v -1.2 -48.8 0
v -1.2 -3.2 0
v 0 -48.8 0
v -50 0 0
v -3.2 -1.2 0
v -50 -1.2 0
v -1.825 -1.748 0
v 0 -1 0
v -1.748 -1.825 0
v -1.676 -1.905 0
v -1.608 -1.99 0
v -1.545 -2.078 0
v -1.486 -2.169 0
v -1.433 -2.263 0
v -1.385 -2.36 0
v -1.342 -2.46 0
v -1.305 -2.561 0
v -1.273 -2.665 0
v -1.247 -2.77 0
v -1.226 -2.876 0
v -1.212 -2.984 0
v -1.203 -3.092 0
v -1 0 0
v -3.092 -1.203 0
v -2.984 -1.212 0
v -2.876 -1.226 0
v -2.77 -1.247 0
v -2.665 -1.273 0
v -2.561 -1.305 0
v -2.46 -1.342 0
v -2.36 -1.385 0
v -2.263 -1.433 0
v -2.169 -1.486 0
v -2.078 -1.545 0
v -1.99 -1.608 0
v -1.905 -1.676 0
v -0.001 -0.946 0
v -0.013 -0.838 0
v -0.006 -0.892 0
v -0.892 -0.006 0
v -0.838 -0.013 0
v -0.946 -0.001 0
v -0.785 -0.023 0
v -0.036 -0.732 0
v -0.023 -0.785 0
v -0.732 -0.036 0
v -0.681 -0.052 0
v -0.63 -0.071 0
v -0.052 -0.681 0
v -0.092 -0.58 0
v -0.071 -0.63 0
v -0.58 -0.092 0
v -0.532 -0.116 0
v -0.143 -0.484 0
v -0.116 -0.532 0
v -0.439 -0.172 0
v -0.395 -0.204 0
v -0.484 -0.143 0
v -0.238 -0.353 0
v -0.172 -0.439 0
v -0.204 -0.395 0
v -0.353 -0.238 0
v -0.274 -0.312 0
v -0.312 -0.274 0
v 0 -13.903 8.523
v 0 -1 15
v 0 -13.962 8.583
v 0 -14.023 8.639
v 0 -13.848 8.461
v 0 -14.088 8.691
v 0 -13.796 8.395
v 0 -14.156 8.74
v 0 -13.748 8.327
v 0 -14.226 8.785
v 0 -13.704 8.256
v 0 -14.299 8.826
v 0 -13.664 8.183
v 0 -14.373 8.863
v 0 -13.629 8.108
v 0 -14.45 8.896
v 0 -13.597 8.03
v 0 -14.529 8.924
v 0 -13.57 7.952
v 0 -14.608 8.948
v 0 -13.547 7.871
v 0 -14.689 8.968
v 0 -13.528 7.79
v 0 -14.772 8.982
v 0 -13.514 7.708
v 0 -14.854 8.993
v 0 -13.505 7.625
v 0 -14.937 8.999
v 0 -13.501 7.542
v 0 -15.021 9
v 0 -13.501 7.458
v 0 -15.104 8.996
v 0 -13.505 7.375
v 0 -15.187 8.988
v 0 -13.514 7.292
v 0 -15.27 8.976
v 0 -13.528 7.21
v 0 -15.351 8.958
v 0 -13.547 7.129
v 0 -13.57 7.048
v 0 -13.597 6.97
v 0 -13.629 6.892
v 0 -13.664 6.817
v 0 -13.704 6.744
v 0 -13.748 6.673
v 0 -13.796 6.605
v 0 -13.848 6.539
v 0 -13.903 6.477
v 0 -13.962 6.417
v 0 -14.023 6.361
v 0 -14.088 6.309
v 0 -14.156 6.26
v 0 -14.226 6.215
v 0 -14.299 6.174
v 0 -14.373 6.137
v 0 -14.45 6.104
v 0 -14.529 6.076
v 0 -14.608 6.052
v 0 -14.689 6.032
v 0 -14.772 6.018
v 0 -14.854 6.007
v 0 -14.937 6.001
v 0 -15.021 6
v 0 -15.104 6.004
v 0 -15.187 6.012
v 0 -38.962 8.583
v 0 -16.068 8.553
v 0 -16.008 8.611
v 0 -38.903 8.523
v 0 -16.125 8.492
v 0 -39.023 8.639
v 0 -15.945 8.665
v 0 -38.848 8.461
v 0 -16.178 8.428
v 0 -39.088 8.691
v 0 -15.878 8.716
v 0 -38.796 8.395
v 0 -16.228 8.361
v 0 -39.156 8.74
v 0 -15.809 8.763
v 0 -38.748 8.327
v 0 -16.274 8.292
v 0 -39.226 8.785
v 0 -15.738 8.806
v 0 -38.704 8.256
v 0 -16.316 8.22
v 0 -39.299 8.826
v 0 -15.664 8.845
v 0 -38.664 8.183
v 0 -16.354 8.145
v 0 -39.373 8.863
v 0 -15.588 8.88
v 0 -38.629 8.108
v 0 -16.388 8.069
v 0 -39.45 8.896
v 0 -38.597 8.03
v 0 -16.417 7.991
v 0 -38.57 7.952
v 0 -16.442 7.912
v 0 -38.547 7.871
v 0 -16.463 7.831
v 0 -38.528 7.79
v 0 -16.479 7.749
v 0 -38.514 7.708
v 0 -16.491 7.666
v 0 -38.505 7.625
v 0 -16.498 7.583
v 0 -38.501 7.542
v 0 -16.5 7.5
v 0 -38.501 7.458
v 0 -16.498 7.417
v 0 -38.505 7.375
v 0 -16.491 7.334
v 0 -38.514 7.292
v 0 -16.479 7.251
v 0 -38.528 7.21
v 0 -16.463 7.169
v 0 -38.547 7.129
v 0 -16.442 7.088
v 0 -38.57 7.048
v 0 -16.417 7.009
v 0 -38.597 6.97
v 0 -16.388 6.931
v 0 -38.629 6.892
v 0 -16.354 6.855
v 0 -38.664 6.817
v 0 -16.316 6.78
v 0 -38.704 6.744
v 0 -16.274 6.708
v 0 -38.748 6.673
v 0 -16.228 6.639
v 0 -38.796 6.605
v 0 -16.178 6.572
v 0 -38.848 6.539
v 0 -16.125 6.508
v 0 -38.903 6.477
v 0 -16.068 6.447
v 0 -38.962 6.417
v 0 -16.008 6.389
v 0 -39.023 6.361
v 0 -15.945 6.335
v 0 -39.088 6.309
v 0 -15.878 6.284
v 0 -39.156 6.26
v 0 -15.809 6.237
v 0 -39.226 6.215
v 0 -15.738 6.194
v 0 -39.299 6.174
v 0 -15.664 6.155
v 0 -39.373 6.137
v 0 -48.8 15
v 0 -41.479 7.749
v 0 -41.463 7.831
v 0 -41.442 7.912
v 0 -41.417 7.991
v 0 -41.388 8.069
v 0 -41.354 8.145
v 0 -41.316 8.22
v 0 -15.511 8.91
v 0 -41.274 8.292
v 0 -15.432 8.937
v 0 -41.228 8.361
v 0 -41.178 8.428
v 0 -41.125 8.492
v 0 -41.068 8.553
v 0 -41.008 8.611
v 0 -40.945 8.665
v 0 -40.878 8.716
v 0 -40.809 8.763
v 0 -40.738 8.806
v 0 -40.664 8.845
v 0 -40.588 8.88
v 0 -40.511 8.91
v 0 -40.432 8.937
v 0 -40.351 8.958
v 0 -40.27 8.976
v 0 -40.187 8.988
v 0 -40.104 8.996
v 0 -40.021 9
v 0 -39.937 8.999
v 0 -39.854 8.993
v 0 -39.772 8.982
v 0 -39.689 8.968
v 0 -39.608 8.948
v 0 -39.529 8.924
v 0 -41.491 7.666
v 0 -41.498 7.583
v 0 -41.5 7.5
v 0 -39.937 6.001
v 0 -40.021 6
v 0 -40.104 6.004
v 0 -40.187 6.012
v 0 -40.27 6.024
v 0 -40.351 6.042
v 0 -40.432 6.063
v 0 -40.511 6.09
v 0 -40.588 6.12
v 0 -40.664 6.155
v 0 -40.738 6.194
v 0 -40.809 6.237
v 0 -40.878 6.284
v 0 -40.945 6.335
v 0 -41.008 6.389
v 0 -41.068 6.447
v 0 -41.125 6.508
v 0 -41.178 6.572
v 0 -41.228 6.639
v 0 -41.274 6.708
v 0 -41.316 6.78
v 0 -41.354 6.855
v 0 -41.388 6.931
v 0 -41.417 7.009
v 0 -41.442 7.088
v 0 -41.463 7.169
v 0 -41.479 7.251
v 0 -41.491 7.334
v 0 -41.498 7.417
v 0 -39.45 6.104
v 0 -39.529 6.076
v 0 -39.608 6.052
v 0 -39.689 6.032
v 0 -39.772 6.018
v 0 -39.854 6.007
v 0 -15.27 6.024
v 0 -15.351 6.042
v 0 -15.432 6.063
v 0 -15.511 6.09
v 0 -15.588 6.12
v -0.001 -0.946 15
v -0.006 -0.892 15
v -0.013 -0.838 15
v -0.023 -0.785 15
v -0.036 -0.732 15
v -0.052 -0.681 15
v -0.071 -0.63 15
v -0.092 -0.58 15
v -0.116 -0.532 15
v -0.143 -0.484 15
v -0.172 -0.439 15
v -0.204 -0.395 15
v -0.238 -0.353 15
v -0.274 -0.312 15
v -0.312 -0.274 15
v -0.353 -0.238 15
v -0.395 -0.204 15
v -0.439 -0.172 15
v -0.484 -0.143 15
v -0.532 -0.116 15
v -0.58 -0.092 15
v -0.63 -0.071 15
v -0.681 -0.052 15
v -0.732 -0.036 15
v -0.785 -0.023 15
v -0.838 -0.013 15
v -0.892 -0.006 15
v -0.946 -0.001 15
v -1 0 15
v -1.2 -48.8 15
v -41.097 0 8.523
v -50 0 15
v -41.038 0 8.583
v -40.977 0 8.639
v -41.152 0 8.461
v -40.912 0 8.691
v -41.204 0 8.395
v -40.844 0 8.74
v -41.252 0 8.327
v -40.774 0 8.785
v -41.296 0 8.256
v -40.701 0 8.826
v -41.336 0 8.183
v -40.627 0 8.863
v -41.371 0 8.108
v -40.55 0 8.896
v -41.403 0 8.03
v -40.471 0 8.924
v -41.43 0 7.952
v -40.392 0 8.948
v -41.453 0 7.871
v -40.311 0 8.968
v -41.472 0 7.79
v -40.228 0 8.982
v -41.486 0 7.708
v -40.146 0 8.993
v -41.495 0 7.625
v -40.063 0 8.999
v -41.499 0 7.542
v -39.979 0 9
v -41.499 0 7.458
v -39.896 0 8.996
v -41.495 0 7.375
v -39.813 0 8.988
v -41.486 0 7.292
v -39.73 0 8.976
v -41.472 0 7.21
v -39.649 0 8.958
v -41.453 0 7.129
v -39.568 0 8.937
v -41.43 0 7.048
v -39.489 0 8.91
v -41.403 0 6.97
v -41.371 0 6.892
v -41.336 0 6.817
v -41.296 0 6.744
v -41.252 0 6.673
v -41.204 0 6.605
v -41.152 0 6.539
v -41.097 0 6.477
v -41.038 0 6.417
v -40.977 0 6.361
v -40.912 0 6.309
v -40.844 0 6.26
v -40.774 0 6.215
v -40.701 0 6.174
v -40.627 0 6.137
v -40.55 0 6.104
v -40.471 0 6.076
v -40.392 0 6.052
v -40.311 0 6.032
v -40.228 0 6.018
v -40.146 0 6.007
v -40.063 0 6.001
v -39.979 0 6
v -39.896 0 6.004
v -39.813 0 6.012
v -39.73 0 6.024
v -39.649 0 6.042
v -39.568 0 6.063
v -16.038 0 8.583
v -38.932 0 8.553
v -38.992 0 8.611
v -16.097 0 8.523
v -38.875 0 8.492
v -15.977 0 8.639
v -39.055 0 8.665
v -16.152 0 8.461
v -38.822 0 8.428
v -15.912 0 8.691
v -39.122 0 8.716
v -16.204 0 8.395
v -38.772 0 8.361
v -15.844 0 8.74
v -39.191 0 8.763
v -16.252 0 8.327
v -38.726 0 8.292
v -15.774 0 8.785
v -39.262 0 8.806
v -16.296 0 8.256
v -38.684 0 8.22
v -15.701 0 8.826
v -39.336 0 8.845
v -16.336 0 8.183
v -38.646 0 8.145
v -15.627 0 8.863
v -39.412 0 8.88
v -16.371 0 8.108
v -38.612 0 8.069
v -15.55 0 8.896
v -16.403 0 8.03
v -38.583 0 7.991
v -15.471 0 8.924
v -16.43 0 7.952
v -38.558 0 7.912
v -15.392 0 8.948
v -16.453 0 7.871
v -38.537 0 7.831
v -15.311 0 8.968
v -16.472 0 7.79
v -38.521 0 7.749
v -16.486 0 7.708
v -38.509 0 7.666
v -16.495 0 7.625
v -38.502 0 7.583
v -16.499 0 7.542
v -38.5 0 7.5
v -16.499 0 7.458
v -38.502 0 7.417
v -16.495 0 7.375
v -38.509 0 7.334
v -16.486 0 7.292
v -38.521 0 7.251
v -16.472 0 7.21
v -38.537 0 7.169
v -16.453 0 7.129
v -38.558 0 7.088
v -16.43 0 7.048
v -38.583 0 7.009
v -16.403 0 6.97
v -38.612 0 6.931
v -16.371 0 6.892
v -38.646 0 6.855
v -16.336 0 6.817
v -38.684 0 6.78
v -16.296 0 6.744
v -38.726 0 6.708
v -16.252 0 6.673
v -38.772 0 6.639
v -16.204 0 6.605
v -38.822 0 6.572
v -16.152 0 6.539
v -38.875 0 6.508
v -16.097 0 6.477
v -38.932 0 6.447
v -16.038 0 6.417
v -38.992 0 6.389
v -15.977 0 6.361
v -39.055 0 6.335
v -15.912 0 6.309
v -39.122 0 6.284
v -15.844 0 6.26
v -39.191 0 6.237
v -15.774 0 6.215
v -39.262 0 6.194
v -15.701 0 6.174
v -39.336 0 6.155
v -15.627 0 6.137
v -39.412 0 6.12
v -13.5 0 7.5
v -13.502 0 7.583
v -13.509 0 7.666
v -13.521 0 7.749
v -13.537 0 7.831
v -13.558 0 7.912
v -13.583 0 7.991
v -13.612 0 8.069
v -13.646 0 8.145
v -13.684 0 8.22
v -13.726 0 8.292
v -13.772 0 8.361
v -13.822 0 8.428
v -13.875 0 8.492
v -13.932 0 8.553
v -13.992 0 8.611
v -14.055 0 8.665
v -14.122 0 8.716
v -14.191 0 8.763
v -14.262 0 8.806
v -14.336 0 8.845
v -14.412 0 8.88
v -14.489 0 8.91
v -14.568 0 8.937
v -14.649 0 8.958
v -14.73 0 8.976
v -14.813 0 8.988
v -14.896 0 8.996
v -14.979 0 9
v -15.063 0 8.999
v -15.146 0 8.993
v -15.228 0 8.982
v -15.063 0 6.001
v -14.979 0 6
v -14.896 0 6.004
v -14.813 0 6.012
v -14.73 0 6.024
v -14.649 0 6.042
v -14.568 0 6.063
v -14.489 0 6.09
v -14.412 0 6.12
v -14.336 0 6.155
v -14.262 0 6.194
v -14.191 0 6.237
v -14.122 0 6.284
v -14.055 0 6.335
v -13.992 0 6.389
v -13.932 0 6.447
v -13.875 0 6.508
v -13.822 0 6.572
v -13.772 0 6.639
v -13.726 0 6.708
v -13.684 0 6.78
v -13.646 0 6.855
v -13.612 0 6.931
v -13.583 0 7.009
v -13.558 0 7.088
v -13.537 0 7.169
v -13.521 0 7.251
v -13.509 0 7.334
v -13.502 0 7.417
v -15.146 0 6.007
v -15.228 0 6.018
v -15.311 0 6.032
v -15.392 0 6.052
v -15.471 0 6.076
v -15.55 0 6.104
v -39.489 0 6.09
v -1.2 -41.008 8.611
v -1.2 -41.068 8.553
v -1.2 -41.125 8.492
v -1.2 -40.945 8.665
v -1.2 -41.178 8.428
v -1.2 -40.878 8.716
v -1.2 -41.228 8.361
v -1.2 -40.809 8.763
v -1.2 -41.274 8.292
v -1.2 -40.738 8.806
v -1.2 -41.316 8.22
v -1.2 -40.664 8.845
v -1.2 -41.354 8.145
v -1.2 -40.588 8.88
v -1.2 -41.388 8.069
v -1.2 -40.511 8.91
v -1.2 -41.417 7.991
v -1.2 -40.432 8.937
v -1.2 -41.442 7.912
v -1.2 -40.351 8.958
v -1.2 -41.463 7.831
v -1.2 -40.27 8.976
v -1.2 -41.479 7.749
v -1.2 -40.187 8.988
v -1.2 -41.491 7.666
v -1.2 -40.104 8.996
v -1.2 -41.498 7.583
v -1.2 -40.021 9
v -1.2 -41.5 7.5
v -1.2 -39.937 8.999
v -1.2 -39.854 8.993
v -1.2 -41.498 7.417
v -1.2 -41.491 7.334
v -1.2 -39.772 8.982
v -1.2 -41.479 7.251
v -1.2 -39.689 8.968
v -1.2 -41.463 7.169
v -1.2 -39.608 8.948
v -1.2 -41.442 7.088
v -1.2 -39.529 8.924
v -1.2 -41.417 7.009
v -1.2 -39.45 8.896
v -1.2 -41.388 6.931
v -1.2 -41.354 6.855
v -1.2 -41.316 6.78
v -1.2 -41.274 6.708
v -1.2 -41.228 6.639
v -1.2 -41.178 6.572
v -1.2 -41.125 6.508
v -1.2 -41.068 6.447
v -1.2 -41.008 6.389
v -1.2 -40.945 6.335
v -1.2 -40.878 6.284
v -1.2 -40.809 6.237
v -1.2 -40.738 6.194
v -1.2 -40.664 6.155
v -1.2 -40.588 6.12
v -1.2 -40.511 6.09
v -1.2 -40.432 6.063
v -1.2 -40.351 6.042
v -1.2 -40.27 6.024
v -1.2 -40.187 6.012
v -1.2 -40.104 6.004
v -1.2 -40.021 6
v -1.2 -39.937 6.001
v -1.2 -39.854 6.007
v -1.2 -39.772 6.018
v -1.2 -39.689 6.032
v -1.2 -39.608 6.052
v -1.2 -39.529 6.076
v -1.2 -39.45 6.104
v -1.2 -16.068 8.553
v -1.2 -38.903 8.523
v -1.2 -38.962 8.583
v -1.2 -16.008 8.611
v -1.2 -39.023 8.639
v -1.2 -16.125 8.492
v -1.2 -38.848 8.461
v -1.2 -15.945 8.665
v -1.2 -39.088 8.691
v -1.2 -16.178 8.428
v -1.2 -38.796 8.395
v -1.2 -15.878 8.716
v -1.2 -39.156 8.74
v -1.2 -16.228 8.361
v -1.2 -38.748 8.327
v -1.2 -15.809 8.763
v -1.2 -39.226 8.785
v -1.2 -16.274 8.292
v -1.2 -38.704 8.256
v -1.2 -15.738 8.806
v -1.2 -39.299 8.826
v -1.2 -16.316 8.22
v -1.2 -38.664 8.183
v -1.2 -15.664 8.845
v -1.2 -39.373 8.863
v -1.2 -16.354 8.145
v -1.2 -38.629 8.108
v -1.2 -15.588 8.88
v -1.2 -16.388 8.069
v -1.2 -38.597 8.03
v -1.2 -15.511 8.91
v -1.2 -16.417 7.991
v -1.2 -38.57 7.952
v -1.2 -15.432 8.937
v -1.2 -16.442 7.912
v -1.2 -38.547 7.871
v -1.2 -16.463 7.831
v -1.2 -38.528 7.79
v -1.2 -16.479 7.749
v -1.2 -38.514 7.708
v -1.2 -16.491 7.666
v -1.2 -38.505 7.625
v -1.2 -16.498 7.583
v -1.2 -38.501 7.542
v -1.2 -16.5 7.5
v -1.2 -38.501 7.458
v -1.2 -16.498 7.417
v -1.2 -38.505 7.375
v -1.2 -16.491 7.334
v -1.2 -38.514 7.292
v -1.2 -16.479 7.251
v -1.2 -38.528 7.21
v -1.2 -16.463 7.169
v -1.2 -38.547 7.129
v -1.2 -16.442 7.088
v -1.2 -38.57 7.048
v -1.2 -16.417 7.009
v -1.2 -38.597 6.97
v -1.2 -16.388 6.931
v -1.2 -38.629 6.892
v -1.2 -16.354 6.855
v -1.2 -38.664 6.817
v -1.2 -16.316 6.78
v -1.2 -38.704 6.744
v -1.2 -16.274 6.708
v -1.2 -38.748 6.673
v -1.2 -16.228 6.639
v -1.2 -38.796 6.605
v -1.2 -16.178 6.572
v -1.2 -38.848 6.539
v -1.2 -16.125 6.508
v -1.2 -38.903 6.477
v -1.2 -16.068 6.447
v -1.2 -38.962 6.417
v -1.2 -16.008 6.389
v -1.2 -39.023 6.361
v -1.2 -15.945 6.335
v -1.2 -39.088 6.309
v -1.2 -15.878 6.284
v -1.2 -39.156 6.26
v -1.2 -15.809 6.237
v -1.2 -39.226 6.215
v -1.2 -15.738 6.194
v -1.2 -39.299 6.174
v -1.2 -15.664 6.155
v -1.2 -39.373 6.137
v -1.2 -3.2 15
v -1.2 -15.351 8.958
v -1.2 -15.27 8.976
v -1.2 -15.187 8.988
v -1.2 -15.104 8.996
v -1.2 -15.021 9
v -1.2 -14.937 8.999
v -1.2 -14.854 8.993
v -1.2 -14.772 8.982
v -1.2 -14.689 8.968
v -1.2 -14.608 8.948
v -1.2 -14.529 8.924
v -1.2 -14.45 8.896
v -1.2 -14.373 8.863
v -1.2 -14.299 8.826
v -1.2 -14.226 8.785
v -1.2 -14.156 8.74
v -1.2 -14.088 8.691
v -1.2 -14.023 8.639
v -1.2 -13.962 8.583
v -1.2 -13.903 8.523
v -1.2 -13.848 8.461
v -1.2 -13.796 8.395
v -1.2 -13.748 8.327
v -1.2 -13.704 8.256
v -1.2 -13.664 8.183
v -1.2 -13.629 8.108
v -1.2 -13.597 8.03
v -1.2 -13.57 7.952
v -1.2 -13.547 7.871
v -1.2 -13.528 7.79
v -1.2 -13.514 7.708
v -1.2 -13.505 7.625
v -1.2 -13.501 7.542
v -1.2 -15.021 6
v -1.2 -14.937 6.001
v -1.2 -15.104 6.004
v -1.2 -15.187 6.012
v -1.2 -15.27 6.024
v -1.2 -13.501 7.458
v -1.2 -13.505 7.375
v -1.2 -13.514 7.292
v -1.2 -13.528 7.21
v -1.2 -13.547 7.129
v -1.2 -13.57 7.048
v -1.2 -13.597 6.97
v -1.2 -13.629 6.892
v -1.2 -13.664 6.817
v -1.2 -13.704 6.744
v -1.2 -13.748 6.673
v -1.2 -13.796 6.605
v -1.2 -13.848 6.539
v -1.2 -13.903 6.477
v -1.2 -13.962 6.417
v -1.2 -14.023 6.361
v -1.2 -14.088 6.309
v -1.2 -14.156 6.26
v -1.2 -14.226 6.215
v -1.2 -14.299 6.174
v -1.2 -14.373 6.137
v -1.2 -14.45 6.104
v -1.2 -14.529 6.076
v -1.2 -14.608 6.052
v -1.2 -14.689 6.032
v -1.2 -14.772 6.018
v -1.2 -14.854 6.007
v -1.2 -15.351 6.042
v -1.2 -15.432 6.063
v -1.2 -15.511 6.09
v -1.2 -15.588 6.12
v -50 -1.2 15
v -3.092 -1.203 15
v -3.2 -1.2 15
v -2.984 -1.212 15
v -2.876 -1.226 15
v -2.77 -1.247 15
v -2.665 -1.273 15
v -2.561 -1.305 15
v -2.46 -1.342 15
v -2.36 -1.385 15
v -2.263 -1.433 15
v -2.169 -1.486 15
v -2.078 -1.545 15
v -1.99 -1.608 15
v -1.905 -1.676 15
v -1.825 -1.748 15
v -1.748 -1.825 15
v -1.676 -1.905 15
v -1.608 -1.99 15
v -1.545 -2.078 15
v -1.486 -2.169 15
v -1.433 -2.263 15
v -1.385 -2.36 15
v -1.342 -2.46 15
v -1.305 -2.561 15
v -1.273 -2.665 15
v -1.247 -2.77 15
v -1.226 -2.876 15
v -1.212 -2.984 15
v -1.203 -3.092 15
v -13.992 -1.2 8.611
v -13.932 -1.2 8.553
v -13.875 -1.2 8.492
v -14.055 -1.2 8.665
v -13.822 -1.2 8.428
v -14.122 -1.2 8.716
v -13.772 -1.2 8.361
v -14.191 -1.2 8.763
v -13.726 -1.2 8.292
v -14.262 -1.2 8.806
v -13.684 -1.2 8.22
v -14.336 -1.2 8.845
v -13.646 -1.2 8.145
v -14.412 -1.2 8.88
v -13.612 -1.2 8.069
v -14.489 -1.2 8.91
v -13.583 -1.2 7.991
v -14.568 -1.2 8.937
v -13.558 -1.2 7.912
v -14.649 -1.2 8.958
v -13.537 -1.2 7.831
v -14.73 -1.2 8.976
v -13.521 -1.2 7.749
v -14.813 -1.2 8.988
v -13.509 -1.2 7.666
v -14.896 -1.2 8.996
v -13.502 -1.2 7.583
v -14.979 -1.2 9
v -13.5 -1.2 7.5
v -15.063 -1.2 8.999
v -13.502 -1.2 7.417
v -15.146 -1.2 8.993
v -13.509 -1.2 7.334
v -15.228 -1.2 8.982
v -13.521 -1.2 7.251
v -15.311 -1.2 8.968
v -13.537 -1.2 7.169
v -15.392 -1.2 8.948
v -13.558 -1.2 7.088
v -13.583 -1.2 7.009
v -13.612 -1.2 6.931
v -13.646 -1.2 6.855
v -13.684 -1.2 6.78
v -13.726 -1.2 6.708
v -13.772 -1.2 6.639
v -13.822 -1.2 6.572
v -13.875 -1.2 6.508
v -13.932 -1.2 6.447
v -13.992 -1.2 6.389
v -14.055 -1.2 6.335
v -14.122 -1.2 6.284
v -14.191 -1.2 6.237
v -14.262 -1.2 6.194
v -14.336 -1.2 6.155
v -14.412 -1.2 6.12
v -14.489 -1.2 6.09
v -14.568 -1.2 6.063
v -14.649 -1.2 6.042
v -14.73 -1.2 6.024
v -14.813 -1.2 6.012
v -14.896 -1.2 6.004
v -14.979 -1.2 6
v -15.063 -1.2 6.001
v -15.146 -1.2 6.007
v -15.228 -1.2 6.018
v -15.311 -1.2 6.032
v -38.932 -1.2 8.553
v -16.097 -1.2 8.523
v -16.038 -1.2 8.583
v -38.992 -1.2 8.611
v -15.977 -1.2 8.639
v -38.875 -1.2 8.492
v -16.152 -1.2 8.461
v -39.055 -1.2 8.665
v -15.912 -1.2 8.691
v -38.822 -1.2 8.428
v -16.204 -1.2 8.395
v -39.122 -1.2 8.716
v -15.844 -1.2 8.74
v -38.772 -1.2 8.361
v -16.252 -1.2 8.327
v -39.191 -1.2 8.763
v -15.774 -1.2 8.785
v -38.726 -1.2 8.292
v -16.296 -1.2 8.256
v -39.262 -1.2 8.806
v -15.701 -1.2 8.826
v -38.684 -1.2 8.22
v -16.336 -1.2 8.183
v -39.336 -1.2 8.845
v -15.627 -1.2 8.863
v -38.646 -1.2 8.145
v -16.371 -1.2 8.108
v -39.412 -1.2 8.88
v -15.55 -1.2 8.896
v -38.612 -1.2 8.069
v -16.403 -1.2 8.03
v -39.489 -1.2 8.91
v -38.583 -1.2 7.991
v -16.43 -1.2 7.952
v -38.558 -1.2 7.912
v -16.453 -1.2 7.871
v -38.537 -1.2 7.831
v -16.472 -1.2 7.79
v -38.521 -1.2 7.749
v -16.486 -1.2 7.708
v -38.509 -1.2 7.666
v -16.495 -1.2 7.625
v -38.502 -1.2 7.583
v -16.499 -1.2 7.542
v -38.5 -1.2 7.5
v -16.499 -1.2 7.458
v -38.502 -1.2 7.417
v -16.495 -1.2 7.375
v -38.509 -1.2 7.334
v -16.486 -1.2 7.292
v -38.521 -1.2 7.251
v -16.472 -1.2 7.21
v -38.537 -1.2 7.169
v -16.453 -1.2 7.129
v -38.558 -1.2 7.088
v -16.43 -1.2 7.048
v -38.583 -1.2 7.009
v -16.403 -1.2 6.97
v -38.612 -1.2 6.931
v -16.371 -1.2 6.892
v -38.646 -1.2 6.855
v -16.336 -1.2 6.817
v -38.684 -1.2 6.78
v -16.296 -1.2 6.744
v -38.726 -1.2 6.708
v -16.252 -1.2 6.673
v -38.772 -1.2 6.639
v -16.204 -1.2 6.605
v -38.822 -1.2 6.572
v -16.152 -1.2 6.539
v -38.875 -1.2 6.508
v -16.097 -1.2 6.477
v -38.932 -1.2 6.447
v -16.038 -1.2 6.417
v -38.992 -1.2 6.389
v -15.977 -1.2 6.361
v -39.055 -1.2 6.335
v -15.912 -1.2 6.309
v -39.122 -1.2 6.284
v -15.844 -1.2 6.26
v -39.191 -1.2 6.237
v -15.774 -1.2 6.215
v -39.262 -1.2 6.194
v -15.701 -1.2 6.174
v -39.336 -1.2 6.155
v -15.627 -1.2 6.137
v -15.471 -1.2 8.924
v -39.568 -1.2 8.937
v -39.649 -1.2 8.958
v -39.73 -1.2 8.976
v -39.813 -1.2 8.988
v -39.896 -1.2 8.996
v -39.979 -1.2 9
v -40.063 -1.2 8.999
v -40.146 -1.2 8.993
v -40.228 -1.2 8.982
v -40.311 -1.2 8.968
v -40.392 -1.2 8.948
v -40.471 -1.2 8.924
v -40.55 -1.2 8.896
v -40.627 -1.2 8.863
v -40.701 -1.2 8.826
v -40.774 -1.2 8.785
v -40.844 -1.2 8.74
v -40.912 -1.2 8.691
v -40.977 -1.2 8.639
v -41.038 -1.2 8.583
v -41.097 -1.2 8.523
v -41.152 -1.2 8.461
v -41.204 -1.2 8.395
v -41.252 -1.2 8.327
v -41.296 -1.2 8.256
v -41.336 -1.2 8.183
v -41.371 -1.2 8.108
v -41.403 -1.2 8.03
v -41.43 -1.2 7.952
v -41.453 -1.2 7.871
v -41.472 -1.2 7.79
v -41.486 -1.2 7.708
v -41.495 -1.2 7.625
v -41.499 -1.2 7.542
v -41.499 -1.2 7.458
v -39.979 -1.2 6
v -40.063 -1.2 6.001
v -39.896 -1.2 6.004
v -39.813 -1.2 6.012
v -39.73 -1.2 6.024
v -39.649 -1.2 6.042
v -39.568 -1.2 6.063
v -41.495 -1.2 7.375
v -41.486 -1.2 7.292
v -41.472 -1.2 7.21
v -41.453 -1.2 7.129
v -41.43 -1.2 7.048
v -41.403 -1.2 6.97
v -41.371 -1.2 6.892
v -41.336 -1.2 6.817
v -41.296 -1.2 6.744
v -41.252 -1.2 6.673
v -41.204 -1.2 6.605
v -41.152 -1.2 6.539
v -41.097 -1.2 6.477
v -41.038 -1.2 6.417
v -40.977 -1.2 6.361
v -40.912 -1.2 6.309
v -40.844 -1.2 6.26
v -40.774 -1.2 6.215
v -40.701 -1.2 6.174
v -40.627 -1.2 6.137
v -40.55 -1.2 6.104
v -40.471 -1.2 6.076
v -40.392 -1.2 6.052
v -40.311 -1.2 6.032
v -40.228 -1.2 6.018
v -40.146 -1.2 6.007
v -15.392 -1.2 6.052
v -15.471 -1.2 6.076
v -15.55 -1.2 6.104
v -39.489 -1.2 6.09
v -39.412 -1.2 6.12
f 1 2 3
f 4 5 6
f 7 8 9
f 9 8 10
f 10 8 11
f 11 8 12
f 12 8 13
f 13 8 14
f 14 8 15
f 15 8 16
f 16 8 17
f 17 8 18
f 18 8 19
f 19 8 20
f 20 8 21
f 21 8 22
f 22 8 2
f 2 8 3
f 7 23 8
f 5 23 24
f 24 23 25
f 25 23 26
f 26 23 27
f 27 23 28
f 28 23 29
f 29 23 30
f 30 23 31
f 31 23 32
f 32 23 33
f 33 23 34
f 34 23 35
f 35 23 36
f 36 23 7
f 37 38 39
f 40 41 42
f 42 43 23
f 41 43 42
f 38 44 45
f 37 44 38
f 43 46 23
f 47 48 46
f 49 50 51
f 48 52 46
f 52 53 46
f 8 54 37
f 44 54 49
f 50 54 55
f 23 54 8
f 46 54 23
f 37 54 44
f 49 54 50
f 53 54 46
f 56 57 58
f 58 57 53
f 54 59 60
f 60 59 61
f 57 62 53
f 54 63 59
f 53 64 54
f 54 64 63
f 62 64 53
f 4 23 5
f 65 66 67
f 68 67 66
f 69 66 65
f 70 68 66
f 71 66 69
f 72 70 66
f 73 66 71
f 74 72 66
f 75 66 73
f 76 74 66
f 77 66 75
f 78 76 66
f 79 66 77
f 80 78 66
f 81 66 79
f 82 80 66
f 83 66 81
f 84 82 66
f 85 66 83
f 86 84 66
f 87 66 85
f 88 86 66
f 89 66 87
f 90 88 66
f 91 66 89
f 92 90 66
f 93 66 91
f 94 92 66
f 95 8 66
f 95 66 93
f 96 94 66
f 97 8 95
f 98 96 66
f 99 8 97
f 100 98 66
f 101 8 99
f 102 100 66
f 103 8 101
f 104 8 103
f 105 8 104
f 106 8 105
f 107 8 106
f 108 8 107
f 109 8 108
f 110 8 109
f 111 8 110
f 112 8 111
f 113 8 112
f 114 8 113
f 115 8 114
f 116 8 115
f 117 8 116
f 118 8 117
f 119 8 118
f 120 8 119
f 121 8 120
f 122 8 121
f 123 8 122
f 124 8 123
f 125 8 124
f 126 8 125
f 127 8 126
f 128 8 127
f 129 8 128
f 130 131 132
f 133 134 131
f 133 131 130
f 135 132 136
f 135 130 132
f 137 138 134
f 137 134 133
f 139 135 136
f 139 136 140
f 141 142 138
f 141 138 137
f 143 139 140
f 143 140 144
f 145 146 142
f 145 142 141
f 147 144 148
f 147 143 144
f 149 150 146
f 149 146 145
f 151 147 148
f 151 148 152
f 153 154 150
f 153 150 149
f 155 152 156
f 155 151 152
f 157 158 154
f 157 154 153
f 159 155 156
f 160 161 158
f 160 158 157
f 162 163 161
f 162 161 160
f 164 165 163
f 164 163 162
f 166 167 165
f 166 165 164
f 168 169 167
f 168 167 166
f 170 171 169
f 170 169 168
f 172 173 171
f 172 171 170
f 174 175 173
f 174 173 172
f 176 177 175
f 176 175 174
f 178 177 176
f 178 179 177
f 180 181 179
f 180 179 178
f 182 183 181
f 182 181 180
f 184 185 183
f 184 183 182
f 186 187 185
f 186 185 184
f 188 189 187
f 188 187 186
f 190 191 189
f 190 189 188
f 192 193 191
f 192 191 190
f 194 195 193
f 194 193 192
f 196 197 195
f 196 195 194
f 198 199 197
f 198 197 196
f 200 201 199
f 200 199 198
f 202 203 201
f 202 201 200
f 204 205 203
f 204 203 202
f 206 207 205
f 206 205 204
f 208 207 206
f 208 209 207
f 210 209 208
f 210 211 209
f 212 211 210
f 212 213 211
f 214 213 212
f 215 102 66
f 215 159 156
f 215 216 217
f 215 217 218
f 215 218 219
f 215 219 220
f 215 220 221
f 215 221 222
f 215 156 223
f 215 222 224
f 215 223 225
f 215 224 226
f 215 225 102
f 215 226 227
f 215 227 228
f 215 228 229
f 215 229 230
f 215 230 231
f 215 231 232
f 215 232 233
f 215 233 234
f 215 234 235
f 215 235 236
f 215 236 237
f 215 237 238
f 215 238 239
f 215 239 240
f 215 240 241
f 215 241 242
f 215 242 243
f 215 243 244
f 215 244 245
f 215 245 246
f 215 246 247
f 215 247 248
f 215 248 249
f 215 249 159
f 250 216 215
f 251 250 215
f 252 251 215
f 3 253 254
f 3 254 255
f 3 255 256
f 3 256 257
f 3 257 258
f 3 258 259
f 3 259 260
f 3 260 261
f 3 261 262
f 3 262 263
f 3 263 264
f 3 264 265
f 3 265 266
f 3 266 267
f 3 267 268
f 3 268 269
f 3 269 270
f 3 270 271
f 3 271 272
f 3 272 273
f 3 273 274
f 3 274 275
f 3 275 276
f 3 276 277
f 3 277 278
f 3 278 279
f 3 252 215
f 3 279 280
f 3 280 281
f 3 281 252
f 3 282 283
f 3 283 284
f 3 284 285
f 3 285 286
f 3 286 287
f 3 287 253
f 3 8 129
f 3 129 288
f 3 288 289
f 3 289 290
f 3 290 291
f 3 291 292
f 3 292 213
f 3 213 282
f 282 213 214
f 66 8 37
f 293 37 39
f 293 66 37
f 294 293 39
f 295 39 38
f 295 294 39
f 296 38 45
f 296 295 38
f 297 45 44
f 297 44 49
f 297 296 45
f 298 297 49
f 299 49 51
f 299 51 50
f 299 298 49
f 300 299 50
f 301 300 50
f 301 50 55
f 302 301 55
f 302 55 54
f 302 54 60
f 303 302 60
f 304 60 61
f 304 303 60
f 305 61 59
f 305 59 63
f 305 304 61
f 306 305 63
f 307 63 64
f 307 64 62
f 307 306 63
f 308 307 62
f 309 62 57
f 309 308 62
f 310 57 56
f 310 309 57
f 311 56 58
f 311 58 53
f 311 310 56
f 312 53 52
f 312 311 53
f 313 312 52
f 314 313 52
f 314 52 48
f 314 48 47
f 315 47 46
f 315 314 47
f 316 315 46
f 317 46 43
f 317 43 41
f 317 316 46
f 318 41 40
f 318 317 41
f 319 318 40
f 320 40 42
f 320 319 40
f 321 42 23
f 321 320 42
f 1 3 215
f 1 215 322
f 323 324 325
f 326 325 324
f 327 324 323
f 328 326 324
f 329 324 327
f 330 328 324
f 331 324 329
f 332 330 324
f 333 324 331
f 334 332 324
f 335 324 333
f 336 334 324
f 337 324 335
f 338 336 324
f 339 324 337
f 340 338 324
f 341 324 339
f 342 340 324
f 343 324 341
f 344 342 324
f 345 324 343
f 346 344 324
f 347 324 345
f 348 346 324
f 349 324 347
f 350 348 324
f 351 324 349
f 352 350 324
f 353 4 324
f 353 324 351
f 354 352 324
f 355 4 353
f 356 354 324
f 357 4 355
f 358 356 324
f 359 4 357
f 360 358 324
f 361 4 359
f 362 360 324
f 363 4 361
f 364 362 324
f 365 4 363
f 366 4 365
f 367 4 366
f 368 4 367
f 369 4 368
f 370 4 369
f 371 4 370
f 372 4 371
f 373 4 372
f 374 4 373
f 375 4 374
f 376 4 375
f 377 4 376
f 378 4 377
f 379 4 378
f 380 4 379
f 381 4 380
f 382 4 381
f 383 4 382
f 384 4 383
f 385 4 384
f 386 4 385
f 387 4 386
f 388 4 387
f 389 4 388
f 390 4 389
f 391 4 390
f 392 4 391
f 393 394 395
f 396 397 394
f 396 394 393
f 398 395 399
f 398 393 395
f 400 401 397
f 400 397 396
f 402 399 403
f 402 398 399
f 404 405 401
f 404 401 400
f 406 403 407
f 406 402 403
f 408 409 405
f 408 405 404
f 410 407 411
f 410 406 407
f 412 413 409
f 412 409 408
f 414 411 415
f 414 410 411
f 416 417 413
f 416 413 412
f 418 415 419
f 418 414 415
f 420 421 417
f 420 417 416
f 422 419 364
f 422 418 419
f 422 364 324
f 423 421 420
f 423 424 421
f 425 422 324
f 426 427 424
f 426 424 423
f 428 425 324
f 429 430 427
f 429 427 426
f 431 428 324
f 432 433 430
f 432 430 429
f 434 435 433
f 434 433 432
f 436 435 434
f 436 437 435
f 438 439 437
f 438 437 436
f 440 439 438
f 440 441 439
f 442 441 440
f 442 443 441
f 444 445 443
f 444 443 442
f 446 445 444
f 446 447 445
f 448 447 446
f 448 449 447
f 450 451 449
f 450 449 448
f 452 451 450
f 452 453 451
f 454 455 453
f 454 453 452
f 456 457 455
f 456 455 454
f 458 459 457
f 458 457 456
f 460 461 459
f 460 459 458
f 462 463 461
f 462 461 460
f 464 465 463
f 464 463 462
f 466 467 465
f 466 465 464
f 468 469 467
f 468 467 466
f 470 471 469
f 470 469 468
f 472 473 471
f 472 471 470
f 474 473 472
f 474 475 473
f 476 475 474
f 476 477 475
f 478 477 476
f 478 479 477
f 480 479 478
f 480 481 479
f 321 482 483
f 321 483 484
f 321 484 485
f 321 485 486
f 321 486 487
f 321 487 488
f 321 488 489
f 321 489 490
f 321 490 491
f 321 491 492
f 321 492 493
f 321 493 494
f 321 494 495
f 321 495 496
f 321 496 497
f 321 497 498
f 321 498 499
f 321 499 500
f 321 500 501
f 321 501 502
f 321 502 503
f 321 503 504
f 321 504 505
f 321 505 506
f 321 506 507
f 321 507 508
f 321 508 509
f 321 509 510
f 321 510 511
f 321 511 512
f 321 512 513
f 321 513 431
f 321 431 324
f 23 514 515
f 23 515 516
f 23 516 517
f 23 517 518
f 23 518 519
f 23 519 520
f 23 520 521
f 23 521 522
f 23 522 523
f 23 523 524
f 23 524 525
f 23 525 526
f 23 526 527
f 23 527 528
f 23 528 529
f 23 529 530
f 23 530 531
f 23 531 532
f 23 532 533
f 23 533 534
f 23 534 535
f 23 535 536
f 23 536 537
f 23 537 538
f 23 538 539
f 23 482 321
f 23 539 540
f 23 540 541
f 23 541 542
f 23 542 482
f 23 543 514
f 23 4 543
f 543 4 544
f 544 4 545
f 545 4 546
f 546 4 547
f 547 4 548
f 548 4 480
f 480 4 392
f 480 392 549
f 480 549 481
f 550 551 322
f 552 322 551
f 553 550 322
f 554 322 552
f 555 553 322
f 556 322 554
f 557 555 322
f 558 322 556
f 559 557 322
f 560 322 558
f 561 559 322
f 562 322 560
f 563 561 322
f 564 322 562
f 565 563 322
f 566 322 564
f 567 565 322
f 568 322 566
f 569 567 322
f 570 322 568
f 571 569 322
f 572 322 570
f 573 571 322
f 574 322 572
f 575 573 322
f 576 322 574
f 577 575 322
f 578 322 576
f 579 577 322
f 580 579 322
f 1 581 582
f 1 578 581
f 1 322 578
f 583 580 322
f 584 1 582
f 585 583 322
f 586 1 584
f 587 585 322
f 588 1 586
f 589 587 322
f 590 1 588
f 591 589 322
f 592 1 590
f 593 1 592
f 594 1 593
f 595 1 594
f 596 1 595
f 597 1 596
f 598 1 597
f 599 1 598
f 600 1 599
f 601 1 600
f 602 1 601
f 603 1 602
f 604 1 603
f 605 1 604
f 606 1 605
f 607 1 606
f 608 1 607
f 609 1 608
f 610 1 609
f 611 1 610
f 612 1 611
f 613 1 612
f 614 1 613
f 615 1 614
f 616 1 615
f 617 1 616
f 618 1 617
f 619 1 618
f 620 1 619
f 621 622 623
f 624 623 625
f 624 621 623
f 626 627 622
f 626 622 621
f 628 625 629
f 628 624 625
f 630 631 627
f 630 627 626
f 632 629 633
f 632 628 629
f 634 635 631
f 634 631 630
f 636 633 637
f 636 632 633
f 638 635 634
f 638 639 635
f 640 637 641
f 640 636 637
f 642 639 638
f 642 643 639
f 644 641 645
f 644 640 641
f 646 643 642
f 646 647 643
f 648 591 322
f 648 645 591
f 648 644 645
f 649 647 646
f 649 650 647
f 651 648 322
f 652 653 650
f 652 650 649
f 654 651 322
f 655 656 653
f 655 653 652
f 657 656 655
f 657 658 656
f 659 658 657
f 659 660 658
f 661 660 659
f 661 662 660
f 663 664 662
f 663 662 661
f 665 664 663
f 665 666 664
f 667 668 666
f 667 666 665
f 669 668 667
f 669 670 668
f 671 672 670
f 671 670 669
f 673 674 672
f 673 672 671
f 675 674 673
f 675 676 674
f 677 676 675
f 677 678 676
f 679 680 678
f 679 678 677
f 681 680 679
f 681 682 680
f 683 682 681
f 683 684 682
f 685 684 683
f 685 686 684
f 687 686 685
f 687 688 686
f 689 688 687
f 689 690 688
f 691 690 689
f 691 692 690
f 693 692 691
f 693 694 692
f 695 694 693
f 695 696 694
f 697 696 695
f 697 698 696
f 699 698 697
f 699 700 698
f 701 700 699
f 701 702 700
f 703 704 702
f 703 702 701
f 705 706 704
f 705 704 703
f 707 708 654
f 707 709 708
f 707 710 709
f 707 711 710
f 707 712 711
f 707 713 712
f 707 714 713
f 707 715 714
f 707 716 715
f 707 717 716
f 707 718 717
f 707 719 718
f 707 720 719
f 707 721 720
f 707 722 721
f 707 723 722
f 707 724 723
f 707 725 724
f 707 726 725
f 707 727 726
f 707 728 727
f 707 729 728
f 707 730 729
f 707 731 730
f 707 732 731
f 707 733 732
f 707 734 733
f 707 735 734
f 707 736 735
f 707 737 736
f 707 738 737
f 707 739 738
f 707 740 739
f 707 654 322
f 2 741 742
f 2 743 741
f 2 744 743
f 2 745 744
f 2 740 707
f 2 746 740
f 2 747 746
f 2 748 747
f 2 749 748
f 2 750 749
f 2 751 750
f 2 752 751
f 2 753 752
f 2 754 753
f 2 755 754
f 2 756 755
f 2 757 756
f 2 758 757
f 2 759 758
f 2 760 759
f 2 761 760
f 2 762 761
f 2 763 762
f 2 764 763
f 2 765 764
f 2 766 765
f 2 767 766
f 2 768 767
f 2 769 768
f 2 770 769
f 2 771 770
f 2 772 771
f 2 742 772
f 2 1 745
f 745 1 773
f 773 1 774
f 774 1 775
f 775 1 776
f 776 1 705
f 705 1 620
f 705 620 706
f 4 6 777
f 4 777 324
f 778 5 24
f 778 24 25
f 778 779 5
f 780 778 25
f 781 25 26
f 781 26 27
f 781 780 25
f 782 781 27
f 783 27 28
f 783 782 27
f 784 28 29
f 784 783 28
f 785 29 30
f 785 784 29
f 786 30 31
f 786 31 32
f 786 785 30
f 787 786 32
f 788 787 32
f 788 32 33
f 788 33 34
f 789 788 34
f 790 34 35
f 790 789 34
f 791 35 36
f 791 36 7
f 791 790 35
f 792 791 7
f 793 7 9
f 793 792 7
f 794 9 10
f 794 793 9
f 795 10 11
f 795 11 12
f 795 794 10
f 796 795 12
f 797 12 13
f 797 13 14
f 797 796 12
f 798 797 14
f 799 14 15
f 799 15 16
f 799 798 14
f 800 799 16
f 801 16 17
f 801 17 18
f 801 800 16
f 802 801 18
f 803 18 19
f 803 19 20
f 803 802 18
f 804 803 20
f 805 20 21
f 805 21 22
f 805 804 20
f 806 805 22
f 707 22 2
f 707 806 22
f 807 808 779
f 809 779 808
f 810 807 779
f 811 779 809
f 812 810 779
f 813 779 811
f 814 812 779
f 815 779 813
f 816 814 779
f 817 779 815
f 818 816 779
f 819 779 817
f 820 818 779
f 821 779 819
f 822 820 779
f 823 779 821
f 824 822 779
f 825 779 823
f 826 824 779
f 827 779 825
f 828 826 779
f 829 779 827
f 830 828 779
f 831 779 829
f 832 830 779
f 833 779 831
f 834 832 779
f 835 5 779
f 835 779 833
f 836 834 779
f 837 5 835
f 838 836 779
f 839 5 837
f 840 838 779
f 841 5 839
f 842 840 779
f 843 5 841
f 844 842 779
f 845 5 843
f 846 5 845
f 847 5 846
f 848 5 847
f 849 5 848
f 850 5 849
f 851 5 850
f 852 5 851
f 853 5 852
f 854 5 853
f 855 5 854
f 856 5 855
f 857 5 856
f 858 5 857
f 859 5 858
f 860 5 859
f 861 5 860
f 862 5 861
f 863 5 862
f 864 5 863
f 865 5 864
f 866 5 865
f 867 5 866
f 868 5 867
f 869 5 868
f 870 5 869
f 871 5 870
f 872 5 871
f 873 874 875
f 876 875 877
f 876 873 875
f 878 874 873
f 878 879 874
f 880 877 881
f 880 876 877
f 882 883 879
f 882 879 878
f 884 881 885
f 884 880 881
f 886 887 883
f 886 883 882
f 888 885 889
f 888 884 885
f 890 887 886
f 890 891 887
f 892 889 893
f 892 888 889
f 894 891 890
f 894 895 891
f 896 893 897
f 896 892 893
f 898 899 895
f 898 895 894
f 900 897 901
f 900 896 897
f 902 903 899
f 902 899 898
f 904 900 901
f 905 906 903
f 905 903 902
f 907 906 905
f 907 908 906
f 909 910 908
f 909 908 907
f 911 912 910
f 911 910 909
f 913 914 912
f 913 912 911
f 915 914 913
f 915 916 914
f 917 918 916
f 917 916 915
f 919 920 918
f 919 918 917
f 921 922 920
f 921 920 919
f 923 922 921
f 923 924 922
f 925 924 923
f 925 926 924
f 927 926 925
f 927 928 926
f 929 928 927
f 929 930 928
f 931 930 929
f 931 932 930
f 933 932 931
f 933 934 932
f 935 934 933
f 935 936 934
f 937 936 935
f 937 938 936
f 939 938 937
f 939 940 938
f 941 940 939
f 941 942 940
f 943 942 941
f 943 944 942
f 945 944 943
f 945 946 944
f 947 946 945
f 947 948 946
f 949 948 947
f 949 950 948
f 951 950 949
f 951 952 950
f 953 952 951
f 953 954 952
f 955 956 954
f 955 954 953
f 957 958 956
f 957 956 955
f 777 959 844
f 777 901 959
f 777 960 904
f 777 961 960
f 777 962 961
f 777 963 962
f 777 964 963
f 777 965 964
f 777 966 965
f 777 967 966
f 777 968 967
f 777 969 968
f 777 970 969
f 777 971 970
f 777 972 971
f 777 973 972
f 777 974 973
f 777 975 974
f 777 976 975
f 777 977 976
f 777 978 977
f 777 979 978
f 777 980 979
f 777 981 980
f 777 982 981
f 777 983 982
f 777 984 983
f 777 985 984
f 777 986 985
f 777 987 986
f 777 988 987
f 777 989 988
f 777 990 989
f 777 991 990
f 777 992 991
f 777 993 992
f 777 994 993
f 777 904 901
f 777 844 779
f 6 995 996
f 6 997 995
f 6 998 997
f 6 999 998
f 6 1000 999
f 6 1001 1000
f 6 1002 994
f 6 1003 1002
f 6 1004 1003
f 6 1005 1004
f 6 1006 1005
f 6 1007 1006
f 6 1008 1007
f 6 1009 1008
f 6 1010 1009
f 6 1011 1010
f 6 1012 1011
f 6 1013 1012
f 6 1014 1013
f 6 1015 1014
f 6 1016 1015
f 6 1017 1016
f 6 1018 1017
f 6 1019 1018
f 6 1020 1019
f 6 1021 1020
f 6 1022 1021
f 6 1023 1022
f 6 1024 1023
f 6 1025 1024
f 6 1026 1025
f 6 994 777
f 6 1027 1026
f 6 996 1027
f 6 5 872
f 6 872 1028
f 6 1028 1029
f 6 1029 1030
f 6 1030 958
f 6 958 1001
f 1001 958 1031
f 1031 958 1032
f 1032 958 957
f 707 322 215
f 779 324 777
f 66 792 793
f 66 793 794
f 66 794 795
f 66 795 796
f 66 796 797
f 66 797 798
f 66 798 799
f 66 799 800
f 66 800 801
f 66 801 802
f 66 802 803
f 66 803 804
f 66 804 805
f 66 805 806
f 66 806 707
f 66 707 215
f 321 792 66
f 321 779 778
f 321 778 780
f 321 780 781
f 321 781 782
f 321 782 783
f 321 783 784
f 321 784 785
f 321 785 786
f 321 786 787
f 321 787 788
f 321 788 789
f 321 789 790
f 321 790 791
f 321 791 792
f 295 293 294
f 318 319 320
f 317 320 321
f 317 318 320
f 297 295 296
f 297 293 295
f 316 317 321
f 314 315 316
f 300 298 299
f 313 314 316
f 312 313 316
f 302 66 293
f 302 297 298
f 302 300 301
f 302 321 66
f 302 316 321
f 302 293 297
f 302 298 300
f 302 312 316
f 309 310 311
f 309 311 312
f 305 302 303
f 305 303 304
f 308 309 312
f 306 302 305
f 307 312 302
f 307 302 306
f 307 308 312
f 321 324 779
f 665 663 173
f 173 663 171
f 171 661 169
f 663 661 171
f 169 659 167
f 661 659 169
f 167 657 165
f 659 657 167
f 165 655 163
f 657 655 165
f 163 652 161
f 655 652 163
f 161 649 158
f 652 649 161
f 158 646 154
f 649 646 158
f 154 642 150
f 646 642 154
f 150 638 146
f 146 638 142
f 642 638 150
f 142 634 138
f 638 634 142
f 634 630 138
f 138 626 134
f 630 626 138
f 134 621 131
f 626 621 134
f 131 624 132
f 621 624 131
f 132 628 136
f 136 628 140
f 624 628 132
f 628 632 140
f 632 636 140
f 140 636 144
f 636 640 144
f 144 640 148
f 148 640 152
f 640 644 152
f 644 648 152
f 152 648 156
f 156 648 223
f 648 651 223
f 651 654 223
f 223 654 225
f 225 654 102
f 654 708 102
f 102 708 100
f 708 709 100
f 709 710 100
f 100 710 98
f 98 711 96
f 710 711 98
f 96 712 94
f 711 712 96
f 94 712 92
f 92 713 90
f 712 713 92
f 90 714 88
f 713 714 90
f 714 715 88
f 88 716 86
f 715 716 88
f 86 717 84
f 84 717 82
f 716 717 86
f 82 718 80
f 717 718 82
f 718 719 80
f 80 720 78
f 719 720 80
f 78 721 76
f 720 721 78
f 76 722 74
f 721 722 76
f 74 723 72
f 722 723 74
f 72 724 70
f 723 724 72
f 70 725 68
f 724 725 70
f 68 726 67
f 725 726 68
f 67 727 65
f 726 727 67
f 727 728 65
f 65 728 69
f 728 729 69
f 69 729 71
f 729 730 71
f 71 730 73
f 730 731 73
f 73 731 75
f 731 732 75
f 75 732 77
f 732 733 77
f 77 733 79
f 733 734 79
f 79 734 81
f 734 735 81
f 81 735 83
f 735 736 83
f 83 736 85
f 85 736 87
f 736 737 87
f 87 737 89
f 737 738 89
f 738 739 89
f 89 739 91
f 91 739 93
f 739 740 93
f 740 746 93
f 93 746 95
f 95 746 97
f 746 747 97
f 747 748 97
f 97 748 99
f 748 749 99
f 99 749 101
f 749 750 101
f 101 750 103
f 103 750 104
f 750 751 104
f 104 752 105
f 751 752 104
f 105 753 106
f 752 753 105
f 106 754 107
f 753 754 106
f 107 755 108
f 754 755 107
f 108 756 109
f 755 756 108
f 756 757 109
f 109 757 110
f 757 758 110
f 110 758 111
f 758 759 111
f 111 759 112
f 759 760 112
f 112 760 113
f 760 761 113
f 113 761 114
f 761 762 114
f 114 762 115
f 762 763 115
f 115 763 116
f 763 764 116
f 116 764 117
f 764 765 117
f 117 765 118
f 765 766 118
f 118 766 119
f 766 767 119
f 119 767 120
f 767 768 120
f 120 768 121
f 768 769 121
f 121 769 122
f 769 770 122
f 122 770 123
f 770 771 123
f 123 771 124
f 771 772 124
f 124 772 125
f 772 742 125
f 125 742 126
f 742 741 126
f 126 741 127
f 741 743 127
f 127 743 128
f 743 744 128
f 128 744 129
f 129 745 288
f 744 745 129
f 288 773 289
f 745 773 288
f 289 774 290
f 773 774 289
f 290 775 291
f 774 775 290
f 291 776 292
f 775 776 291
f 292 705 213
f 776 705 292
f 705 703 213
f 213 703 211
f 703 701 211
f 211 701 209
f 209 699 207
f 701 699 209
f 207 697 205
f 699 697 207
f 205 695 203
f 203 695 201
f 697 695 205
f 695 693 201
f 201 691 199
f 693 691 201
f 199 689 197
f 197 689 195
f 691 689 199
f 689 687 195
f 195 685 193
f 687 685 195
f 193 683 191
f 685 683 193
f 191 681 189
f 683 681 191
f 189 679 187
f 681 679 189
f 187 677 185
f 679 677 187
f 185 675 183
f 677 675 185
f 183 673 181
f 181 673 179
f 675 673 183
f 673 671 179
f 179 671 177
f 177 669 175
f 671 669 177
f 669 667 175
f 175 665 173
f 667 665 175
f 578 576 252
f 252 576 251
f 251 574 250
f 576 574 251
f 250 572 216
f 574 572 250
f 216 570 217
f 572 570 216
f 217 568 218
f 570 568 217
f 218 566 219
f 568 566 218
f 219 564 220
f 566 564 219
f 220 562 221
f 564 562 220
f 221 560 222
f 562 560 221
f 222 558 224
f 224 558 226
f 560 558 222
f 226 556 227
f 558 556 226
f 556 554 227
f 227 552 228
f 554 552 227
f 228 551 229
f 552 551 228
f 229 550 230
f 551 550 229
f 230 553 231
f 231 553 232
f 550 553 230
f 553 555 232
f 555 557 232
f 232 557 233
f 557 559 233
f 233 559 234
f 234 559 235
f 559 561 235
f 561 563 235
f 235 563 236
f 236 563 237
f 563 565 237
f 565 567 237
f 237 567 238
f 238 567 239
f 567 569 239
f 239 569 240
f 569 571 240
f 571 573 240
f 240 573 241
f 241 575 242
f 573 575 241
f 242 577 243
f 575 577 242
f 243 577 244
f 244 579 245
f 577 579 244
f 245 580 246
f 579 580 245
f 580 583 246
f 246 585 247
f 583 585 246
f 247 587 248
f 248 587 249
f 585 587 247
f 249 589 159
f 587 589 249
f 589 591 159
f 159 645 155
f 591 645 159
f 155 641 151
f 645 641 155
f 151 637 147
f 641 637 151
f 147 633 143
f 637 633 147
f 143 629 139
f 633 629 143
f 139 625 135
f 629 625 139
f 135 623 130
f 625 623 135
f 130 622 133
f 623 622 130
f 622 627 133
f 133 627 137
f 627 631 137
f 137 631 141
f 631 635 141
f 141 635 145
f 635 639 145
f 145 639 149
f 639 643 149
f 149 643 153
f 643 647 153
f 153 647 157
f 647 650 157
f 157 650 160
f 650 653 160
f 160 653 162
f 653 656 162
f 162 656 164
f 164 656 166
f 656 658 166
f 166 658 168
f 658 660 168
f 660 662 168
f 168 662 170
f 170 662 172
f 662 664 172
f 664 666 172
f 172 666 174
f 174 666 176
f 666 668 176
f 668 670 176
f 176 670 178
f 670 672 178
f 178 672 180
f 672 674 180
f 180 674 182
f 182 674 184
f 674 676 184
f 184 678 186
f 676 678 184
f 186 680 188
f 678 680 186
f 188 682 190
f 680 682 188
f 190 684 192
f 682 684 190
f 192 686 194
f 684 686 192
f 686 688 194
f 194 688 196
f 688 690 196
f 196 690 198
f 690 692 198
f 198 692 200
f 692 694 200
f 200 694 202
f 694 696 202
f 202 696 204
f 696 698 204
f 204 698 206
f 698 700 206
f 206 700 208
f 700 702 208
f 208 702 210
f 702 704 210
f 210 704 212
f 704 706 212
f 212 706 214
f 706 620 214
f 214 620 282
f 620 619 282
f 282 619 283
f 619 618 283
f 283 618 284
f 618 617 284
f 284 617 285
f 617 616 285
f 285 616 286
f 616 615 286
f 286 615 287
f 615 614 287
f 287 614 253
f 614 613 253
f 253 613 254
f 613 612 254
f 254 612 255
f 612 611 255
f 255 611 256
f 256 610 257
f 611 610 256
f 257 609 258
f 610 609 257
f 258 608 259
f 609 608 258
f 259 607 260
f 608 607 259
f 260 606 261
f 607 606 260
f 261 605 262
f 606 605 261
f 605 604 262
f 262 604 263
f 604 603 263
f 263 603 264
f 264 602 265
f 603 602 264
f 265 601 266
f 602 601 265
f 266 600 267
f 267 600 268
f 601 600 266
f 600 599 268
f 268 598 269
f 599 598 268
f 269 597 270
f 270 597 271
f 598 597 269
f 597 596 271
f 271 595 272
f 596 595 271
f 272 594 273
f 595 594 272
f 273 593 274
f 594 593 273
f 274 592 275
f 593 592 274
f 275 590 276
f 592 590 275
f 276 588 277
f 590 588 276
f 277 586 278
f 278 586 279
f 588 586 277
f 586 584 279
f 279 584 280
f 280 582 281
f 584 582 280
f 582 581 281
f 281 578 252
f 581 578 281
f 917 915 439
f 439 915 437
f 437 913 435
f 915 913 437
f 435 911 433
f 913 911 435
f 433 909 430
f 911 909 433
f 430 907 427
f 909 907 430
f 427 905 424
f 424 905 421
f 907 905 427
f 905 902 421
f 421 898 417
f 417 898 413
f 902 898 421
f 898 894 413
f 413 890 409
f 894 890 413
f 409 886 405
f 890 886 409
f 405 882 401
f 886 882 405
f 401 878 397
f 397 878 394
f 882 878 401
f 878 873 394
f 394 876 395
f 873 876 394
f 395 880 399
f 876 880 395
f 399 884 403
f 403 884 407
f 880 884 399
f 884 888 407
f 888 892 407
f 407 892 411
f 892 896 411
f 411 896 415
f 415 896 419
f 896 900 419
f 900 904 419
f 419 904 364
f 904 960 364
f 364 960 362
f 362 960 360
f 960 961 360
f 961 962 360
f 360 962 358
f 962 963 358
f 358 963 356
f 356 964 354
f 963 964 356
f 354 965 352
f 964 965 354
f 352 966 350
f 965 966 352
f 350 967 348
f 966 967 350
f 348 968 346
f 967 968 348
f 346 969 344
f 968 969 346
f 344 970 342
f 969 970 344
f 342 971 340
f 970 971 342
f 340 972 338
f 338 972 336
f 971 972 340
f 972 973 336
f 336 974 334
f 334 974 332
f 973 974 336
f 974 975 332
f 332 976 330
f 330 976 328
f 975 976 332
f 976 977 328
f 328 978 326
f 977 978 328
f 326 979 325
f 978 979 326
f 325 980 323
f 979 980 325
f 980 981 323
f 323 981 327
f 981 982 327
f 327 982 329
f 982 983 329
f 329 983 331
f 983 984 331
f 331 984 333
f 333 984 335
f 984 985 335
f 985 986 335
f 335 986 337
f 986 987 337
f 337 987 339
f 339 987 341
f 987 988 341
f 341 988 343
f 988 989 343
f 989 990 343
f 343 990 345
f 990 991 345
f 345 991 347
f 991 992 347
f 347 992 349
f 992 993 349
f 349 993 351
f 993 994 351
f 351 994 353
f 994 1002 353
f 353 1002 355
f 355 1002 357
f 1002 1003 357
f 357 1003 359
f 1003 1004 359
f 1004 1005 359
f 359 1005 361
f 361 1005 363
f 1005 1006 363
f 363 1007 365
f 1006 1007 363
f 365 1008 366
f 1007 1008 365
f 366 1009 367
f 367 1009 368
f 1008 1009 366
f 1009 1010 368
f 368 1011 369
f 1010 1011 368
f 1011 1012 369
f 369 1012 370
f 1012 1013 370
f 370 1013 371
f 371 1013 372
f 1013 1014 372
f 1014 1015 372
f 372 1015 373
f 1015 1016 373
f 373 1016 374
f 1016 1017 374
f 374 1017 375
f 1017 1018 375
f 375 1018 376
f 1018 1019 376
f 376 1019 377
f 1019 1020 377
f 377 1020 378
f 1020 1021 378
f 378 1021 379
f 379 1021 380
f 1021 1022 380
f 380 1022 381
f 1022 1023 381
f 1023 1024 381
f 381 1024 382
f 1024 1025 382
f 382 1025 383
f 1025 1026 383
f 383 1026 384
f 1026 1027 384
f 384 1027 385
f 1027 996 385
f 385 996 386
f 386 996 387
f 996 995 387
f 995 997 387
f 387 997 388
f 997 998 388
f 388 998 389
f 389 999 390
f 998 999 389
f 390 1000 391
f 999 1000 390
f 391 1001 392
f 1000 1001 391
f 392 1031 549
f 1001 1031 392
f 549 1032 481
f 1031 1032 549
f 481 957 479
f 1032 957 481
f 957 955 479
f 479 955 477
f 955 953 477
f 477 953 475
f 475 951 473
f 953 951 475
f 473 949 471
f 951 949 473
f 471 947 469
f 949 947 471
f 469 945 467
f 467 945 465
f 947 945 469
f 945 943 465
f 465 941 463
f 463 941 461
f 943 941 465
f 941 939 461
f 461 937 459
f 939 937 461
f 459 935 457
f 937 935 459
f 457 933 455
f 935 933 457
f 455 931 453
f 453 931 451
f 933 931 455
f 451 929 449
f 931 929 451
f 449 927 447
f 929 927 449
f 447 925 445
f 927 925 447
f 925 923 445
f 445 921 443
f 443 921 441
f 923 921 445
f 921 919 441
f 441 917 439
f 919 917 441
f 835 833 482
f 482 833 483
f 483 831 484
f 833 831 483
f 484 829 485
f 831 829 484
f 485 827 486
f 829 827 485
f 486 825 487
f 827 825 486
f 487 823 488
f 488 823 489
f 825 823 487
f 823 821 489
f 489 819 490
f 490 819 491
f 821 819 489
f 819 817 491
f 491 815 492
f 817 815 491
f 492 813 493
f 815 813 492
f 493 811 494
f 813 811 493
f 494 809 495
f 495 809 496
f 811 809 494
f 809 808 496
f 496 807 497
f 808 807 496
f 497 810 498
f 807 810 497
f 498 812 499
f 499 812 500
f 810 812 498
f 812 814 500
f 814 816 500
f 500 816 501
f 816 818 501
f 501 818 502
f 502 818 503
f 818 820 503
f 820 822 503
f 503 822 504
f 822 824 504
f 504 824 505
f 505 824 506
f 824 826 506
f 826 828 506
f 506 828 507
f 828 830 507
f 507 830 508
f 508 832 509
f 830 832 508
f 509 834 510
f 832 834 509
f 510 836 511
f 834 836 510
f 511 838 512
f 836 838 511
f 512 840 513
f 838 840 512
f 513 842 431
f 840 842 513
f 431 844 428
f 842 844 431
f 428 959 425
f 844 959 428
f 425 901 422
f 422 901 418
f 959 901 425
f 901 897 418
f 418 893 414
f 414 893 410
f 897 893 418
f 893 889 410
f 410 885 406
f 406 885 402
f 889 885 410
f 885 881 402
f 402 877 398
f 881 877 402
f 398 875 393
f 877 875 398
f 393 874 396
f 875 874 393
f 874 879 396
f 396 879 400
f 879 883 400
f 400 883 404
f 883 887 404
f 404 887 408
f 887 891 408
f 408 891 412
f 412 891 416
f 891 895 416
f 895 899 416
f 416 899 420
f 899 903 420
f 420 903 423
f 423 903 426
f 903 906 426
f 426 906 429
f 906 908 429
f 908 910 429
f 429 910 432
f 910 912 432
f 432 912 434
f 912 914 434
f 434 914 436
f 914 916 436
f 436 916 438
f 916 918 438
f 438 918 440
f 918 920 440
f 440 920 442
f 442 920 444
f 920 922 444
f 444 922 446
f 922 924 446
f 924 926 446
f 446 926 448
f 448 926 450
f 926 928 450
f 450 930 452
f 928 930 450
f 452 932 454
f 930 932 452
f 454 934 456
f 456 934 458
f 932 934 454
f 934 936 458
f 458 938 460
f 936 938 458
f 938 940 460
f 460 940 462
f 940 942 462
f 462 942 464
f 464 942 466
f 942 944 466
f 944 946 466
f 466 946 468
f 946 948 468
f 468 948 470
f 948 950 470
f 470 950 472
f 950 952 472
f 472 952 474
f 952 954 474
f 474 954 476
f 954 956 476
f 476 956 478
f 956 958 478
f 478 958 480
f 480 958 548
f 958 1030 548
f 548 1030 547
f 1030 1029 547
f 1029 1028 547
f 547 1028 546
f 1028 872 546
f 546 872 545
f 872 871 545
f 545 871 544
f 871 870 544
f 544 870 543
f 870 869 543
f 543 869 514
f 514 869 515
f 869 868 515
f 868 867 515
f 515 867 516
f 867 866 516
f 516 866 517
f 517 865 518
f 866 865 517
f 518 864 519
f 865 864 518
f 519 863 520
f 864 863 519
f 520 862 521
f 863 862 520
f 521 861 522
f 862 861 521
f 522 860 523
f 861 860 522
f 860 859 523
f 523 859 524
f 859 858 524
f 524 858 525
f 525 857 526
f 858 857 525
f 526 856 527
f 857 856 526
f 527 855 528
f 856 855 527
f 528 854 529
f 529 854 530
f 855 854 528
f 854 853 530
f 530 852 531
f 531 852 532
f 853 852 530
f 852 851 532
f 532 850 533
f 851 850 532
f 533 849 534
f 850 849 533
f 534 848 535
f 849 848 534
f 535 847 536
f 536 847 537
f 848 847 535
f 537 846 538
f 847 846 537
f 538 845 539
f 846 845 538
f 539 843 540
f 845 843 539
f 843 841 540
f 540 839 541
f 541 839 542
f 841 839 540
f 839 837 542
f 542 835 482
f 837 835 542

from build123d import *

# Parameters (mm, degrees)
PAD_DEPTH       = 15
SKETCH001_R     = 1.5
POCKET_DEPTH    = 1.201
SKETCH002_R     = 1.5
POCKET001_DEPTH = 1.201
FILLET_R        = 2
FILLET001_R     = 1


with BuildPart() as part:
    # Sketch → Pad (new body)
    with BuildSketch(Plane.XY):
        Polygon((-50, 0), (0, 0), (0, -48.8), (-1.2, -48.8), (-1.2, -1.2), (-50, -1.2), align=None)
    extrude(amount=PAD_DEPTH)

    # Sketch001 (on Face5 of Pad) → Pocket (cut, through all)
    with BuildSketch(Plane.XZ.offset(1.2)):
        with Locations((-40, 7.5)):
            Circle(SKETCH001_R)
        with Locations((-15, 7.5)):
            Circle(SKETCH001_R)
    extrude(amount=-POCKET_DEPTH, mode=Mode.SUBTRACT)

    # Sketch002 (on Face10 of Pocket) → Pocket001 (cut, through all)
    with BuildSketch(Plane(origin=(-1.2, 0, 0), x_dir=(0, -1, 0), z_dir=(-1, 0, 0))):
        with Locations((15, 7.5)):
            Circle(SKETCH002_R)
        with Locations((40, 7.5)):
            Circle(SKETCH002_R)
    extrude(amount=-POCKET001_DEPTH, mode=Mode.SUBTRACT)

    # Fillet
    fillet_edges = [part.edges().sort_by_distance(p)[0] for p in [
        (-1.2, -1.2, 7.5),
    ]]
    fillet(fillet_edges, radius=FILLET_R)

    # Fillet001
    fillet001_edges = [part.edges().sort_by_distance(p)[0] for p in [
        (0, 0, 7.5),
    ]]
    fillet(fillet001_edges, radius=FILLET001_R)


solid = part.part
